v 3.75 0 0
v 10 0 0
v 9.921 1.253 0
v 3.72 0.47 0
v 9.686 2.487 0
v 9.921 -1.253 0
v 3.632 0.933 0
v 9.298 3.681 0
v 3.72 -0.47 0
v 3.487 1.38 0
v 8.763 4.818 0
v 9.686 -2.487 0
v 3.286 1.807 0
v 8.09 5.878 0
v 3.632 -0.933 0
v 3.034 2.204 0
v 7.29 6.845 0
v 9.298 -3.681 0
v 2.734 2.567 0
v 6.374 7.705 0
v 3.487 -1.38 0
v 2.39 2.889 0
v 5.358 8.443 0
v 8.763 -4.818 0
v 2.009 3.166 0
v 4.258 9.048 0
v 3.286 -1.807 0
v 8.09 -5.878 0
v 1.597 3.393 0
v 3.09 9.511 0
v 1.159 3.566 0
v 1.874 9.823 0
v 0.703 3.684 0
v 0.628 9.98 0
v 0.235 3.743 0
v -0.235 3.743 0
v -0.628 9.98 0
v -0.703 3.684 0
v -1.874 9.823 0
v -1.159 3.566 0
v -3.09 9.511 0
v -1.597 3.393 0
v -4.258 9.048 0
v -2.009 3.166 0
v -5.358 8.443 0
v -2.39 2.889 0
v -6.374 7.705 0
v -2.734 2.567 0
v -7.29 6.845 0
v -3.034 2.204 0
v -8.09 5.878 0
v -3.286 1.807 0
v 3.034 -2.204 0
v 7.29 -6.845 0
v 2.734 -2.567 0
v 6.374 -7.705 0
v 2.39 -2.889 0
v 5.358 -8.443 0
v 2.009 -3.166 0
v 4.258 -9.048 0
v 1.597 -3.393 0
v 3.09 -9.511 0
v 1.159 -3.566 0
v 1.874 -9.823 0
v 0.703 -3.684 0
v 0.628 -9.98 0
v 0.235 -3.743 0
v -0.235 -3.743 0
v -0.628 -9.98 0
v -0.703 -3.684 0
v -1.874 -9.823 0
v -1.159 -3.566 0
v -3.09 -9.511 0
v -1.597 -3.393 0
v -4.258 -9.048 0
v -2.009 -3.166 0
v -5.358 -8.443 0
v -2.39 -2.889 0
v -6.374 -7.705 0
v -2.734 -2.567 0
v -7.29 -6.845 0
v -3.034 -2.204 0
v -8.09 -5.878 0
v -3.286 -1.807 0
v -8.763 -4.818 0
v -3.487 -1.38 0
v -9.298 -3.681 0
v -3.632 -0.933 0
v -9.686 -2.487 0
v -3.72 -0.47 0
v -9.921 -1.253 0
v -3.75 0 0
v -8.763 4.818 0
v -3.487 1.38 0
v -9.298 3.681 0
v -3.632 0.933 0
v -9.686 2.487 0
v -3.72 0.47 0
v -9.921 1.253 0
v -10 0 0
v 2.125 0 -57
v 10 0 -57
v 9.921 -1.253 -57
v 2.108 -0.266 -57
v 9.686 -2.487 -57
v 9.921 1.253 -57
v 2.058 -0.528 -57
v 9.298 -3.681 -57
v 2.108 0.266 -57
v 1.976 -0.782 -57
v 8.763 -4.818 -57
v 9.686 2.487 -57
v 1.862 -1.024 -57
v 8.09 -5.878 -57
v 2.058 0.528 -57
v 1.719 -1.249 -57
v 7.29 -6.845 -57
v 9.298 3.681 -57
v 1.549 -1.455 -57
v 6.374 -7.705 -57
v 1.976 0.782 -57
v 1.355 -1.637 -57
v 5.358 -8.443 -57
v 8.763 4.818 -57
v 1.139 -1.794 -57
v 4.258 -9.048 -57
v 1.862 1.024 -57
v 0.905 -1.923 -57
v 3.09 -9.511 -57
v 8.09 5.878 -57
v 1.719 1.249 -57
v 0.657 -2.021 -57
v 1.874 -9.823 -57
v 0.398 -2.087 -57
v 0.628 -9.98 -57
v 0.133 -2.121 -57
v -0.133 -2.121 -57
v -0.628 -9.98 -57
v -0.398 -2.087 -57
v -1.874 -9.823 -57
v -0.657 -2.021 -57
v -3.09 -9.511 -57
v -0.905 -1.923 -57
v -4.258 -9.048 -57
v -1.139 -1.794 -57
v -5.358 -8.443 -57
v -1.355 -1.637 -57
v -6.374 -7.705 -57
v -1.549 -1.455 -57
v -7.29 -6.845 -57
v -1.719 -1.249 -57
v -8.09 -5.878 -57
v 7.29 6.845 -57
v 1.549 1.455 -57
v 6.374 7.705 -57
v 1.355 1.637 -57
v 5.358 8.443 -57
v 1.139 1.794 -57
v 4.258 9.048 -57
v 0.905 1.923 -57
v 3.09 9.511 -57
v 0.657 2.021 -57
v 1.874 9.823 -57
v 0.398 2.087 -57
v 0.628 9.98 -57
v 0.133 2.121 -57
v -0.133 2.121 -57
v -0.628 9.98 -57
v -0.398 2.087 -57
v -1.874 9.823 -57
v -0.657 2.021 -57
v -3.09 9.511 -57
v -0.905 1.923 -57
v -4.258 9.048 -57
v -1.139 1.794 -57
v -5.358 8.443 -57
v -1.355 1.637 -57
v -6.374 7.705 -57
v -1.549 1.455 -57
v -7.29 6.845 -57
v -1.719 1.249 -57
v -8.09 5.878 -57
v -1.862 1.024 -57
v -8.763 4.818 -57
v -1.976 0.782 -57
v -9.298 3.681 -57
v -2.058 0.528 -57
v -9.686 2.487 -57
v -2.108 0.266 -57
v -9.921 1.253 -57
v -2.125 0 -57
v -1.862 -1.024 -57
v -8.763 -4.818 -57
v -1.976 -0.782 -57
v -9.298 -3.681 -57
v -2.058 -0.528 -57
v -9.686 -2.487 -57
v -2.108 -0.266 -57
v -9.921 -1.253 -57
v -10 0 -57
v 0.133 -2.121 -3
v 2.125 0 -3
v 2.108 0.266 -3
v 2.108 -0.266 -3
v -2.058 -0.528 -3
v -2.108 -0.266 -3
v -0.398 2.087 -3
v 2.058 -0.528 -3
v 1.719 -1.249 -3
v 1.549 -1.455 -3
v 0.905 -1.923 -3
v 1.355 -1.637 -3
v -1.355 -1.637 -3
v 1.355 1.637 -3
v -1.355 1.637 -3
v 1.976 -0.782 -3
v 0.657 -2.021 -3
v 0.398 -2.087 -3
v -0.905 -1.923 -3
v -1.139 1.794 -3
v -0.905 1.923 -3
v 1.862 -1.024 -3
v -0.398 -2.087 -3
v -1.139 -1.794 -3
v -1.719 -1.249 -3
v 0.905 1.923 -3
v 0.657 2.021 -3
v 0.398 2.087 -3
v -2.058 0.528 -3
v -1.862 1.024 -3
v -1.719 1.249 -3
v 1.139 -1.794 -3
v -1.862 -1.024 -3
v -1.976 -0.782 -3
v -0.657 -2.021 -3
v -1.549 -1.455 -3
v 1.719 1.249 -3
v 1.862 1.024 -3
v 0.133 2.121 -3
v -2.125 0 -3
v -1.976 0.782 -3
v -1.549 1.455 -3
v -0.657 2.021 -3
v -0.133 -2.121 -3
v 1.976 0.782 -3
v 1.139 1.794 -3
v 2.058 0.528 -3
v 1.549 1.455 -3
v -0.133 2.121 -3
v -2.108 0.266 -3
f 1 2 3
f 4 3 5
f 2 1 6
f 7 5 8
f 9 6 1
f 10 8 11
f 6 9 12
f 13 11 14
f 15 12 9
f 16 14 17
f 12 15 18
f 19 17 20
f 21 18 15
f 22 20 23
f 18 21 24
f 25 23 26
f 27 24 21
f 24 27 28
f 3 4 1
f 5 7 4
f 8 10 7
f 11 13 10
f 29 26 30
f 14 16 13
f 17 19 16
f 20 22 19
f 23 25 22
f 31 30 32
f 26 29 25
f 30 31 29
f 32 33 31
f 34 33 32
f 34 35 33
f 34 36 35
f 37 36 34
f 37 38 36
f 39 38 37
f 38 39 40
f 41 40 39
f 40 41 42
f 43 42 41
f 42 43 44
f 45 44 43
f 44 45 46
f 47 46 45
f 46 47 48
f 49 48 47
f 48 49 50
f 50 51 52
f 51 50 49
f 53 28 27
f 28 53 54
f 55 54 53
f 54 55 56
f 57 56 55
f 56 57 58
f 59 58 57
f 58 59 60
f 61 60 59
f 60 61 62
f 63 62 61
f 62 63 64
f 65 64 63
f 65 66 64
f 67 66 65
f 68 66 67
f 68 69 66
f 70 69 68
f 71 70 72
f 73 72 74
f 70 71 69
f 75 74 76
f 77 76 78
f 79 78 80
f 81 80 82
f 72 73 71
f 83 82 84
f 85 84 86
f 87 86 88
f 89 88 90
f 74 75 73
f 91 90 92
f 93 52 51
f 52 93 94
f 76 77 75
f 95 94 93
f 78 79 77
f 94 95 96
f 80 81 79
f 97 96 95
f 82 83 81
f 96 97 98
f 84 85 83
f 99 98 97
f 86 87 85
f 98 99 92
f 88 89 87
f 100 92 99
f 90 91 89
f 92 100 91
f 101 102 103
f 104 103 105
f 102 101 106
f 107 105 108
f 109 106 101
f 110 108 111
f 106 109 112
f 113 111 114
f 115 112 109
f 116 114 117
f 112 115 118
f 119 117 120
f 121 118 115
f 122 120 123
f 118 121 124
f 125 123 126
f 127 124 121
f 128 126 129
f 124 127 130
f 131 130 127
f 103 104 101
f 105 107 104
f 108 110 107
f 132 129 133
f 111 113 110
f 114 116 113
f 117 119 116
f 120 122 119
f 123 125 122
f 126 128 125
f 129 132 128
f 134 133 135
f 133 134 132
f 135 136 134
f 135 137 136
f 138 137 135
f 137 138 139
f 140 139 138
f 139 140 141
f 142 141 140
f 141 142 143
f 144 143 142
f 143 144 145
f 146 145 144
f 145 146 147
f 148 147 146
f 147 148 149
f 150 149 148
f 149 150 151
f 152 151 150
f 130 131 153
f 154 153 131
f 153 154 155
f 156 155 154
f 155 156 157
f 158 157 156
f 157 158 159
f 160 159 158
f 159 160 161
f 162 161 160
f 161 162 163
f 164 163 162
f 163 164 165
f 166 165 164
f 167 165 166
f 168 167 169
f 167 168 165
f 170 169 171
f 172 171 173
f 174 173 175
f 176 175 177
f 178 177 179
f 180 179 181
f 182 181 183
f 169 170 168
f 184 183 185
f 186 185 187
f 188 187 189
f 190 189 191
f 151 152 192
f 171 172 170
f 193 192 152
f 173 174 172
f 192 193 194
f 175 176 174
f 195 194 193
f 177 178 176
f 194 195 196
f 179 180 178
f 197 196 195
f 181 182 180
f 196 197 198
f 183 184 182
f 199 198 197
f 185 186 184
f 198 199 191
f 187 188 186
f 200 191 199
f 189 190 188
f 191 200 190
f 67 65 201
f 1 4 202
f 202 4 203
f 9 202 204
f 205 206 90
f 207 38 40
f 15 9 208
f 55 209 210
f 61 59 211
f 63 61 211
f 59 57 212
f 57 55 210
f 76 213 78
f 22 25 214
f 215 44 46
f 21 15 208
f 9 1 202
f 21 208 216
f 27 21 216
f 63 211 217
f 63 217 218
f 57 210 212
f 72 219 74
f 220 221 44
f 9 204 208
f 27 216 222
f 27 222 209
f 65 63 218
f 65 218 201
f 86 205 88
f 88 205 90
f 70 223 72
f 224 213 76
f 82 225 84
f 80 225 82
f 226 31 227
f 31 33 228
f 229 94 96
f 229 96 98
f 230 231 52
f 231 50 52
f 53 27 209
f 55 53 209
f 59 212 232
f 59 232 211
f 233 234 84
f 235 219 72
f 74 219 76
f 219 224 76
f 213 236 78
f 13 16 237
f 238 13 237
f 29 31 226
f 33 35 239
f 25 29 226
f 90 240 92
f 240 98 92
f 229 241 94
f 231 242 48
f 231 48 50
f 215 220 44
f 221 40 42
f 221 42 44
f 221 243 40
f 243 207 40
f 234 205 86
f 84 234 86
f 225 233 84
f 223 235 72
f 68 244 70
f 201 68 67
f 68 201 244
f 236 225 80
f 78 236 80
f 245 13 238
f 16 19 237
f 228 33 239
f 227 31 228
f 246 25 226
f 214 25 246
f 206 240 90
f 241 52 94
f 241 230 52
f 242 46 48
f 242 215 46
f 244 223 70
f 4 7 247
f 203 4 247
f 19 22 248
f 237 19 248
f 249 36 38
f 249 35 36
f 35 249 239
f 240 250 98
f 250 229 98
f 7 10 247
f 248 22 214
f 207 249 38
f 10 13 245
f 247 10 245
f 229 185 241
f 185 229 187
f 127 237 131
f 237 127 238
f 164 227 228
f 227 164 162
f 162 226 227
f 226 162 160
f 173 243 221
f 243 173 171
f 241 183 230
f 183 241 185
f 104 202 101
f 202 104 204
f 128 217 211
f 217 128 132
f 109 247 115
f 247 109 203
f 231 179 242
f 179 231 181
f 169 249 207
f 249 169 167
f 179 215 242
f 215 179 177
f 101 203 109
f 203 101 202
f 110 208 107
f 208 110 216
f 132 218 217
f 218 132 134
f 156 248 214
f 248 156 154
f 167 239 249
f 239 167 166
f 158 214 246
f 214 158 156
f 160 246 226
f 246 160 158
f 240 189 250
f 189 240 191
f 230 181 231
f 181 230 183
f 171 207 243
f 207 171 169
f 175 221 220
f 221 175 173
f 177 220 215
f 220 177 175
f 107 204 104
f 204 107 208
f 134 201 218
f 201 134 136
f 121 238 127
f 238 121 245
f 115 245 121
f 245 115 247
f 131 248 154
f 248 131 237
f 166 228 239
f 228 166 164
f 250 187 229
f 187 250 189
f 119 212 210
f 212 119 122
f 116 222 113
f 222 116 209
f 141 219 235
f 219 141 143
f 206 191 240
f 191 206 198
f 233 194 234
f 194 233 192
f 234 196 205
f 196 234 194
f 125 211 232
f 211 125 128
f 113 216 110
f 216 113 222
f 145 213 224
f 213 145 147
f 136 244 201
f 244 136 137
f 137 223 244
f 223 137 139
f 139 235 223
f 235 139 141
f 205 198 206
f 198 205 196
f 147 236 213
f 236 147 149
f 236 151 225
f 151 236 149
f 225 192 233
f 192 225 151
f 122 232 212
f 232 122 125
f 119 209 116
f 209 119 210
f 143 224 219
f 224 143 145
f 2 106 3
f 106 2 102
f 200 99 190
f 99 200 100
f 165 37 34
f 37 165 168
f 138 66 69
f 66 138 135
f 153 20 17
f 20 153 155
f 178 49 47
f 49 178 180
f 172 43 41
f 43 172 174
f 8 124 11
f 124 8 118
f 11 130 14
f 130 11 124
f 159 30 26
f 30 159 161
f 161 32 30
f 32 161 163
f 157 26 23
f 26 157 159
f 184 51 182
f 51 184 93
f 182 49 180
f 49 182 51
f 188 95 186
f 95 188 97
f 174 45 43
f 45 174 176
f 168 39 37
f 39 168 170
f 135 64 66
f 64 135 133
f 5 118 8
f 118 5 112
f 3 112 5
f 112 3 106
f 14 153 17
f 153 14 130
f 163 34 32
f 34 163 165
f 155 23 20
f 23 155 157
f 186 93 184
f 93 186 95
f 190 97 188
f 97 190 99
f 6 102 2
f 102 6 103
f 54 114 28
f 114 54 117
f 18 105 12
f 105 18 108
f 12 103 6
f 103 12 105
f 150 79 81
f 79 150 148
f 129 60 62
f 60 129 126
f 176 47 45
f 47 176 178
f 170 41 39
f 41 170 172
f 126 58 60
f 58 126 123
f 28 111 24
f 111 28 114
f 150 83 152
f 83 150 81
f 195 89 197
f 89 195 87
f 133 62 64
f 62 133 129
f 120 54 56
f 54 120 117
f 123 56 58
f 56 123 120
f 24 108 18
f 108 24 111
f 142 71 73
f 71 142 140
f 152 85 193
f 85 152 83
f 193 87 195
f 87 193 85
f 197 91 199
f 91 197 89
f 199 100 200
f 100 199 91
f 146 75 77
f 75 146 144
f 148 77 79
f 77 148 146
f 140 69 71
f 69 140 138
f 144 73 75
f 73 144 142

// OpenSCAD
$fn = 50;


difference() {
	union() {
		translate(v = [0, 0, -57.0000000000]) {
			cylinder(h = 57, r = 10.0000000000);
		}
		cylinder(h = 0, r = 16.0000000000);
	}
	union() {
		translate(v = [0, 0, 0]) {
			rotate(a = [0, 0, 0]) {
				difference() {
					union() {
						#translate(v = [0, 0, -57.0000000000]) {
							cylinder(h = 57, r = 2.0000000000);
						}
						#translate(v = [0, 0, -3]) {
							cylinder(h = 3, r1 = 2.1250000000, r2 = 3.7500000000);
						}
						#translate(v = [0, 0, -57.0000000000]) {
							cylinder(h = 57, r = 2.1250000000);
						}
						#translate(v = [0, 0, -57.0000000000]) {
							cylinder(h = 57, r = 2.0000000000);
						}
					}
					union();
				}
			}
		}
	}
}
